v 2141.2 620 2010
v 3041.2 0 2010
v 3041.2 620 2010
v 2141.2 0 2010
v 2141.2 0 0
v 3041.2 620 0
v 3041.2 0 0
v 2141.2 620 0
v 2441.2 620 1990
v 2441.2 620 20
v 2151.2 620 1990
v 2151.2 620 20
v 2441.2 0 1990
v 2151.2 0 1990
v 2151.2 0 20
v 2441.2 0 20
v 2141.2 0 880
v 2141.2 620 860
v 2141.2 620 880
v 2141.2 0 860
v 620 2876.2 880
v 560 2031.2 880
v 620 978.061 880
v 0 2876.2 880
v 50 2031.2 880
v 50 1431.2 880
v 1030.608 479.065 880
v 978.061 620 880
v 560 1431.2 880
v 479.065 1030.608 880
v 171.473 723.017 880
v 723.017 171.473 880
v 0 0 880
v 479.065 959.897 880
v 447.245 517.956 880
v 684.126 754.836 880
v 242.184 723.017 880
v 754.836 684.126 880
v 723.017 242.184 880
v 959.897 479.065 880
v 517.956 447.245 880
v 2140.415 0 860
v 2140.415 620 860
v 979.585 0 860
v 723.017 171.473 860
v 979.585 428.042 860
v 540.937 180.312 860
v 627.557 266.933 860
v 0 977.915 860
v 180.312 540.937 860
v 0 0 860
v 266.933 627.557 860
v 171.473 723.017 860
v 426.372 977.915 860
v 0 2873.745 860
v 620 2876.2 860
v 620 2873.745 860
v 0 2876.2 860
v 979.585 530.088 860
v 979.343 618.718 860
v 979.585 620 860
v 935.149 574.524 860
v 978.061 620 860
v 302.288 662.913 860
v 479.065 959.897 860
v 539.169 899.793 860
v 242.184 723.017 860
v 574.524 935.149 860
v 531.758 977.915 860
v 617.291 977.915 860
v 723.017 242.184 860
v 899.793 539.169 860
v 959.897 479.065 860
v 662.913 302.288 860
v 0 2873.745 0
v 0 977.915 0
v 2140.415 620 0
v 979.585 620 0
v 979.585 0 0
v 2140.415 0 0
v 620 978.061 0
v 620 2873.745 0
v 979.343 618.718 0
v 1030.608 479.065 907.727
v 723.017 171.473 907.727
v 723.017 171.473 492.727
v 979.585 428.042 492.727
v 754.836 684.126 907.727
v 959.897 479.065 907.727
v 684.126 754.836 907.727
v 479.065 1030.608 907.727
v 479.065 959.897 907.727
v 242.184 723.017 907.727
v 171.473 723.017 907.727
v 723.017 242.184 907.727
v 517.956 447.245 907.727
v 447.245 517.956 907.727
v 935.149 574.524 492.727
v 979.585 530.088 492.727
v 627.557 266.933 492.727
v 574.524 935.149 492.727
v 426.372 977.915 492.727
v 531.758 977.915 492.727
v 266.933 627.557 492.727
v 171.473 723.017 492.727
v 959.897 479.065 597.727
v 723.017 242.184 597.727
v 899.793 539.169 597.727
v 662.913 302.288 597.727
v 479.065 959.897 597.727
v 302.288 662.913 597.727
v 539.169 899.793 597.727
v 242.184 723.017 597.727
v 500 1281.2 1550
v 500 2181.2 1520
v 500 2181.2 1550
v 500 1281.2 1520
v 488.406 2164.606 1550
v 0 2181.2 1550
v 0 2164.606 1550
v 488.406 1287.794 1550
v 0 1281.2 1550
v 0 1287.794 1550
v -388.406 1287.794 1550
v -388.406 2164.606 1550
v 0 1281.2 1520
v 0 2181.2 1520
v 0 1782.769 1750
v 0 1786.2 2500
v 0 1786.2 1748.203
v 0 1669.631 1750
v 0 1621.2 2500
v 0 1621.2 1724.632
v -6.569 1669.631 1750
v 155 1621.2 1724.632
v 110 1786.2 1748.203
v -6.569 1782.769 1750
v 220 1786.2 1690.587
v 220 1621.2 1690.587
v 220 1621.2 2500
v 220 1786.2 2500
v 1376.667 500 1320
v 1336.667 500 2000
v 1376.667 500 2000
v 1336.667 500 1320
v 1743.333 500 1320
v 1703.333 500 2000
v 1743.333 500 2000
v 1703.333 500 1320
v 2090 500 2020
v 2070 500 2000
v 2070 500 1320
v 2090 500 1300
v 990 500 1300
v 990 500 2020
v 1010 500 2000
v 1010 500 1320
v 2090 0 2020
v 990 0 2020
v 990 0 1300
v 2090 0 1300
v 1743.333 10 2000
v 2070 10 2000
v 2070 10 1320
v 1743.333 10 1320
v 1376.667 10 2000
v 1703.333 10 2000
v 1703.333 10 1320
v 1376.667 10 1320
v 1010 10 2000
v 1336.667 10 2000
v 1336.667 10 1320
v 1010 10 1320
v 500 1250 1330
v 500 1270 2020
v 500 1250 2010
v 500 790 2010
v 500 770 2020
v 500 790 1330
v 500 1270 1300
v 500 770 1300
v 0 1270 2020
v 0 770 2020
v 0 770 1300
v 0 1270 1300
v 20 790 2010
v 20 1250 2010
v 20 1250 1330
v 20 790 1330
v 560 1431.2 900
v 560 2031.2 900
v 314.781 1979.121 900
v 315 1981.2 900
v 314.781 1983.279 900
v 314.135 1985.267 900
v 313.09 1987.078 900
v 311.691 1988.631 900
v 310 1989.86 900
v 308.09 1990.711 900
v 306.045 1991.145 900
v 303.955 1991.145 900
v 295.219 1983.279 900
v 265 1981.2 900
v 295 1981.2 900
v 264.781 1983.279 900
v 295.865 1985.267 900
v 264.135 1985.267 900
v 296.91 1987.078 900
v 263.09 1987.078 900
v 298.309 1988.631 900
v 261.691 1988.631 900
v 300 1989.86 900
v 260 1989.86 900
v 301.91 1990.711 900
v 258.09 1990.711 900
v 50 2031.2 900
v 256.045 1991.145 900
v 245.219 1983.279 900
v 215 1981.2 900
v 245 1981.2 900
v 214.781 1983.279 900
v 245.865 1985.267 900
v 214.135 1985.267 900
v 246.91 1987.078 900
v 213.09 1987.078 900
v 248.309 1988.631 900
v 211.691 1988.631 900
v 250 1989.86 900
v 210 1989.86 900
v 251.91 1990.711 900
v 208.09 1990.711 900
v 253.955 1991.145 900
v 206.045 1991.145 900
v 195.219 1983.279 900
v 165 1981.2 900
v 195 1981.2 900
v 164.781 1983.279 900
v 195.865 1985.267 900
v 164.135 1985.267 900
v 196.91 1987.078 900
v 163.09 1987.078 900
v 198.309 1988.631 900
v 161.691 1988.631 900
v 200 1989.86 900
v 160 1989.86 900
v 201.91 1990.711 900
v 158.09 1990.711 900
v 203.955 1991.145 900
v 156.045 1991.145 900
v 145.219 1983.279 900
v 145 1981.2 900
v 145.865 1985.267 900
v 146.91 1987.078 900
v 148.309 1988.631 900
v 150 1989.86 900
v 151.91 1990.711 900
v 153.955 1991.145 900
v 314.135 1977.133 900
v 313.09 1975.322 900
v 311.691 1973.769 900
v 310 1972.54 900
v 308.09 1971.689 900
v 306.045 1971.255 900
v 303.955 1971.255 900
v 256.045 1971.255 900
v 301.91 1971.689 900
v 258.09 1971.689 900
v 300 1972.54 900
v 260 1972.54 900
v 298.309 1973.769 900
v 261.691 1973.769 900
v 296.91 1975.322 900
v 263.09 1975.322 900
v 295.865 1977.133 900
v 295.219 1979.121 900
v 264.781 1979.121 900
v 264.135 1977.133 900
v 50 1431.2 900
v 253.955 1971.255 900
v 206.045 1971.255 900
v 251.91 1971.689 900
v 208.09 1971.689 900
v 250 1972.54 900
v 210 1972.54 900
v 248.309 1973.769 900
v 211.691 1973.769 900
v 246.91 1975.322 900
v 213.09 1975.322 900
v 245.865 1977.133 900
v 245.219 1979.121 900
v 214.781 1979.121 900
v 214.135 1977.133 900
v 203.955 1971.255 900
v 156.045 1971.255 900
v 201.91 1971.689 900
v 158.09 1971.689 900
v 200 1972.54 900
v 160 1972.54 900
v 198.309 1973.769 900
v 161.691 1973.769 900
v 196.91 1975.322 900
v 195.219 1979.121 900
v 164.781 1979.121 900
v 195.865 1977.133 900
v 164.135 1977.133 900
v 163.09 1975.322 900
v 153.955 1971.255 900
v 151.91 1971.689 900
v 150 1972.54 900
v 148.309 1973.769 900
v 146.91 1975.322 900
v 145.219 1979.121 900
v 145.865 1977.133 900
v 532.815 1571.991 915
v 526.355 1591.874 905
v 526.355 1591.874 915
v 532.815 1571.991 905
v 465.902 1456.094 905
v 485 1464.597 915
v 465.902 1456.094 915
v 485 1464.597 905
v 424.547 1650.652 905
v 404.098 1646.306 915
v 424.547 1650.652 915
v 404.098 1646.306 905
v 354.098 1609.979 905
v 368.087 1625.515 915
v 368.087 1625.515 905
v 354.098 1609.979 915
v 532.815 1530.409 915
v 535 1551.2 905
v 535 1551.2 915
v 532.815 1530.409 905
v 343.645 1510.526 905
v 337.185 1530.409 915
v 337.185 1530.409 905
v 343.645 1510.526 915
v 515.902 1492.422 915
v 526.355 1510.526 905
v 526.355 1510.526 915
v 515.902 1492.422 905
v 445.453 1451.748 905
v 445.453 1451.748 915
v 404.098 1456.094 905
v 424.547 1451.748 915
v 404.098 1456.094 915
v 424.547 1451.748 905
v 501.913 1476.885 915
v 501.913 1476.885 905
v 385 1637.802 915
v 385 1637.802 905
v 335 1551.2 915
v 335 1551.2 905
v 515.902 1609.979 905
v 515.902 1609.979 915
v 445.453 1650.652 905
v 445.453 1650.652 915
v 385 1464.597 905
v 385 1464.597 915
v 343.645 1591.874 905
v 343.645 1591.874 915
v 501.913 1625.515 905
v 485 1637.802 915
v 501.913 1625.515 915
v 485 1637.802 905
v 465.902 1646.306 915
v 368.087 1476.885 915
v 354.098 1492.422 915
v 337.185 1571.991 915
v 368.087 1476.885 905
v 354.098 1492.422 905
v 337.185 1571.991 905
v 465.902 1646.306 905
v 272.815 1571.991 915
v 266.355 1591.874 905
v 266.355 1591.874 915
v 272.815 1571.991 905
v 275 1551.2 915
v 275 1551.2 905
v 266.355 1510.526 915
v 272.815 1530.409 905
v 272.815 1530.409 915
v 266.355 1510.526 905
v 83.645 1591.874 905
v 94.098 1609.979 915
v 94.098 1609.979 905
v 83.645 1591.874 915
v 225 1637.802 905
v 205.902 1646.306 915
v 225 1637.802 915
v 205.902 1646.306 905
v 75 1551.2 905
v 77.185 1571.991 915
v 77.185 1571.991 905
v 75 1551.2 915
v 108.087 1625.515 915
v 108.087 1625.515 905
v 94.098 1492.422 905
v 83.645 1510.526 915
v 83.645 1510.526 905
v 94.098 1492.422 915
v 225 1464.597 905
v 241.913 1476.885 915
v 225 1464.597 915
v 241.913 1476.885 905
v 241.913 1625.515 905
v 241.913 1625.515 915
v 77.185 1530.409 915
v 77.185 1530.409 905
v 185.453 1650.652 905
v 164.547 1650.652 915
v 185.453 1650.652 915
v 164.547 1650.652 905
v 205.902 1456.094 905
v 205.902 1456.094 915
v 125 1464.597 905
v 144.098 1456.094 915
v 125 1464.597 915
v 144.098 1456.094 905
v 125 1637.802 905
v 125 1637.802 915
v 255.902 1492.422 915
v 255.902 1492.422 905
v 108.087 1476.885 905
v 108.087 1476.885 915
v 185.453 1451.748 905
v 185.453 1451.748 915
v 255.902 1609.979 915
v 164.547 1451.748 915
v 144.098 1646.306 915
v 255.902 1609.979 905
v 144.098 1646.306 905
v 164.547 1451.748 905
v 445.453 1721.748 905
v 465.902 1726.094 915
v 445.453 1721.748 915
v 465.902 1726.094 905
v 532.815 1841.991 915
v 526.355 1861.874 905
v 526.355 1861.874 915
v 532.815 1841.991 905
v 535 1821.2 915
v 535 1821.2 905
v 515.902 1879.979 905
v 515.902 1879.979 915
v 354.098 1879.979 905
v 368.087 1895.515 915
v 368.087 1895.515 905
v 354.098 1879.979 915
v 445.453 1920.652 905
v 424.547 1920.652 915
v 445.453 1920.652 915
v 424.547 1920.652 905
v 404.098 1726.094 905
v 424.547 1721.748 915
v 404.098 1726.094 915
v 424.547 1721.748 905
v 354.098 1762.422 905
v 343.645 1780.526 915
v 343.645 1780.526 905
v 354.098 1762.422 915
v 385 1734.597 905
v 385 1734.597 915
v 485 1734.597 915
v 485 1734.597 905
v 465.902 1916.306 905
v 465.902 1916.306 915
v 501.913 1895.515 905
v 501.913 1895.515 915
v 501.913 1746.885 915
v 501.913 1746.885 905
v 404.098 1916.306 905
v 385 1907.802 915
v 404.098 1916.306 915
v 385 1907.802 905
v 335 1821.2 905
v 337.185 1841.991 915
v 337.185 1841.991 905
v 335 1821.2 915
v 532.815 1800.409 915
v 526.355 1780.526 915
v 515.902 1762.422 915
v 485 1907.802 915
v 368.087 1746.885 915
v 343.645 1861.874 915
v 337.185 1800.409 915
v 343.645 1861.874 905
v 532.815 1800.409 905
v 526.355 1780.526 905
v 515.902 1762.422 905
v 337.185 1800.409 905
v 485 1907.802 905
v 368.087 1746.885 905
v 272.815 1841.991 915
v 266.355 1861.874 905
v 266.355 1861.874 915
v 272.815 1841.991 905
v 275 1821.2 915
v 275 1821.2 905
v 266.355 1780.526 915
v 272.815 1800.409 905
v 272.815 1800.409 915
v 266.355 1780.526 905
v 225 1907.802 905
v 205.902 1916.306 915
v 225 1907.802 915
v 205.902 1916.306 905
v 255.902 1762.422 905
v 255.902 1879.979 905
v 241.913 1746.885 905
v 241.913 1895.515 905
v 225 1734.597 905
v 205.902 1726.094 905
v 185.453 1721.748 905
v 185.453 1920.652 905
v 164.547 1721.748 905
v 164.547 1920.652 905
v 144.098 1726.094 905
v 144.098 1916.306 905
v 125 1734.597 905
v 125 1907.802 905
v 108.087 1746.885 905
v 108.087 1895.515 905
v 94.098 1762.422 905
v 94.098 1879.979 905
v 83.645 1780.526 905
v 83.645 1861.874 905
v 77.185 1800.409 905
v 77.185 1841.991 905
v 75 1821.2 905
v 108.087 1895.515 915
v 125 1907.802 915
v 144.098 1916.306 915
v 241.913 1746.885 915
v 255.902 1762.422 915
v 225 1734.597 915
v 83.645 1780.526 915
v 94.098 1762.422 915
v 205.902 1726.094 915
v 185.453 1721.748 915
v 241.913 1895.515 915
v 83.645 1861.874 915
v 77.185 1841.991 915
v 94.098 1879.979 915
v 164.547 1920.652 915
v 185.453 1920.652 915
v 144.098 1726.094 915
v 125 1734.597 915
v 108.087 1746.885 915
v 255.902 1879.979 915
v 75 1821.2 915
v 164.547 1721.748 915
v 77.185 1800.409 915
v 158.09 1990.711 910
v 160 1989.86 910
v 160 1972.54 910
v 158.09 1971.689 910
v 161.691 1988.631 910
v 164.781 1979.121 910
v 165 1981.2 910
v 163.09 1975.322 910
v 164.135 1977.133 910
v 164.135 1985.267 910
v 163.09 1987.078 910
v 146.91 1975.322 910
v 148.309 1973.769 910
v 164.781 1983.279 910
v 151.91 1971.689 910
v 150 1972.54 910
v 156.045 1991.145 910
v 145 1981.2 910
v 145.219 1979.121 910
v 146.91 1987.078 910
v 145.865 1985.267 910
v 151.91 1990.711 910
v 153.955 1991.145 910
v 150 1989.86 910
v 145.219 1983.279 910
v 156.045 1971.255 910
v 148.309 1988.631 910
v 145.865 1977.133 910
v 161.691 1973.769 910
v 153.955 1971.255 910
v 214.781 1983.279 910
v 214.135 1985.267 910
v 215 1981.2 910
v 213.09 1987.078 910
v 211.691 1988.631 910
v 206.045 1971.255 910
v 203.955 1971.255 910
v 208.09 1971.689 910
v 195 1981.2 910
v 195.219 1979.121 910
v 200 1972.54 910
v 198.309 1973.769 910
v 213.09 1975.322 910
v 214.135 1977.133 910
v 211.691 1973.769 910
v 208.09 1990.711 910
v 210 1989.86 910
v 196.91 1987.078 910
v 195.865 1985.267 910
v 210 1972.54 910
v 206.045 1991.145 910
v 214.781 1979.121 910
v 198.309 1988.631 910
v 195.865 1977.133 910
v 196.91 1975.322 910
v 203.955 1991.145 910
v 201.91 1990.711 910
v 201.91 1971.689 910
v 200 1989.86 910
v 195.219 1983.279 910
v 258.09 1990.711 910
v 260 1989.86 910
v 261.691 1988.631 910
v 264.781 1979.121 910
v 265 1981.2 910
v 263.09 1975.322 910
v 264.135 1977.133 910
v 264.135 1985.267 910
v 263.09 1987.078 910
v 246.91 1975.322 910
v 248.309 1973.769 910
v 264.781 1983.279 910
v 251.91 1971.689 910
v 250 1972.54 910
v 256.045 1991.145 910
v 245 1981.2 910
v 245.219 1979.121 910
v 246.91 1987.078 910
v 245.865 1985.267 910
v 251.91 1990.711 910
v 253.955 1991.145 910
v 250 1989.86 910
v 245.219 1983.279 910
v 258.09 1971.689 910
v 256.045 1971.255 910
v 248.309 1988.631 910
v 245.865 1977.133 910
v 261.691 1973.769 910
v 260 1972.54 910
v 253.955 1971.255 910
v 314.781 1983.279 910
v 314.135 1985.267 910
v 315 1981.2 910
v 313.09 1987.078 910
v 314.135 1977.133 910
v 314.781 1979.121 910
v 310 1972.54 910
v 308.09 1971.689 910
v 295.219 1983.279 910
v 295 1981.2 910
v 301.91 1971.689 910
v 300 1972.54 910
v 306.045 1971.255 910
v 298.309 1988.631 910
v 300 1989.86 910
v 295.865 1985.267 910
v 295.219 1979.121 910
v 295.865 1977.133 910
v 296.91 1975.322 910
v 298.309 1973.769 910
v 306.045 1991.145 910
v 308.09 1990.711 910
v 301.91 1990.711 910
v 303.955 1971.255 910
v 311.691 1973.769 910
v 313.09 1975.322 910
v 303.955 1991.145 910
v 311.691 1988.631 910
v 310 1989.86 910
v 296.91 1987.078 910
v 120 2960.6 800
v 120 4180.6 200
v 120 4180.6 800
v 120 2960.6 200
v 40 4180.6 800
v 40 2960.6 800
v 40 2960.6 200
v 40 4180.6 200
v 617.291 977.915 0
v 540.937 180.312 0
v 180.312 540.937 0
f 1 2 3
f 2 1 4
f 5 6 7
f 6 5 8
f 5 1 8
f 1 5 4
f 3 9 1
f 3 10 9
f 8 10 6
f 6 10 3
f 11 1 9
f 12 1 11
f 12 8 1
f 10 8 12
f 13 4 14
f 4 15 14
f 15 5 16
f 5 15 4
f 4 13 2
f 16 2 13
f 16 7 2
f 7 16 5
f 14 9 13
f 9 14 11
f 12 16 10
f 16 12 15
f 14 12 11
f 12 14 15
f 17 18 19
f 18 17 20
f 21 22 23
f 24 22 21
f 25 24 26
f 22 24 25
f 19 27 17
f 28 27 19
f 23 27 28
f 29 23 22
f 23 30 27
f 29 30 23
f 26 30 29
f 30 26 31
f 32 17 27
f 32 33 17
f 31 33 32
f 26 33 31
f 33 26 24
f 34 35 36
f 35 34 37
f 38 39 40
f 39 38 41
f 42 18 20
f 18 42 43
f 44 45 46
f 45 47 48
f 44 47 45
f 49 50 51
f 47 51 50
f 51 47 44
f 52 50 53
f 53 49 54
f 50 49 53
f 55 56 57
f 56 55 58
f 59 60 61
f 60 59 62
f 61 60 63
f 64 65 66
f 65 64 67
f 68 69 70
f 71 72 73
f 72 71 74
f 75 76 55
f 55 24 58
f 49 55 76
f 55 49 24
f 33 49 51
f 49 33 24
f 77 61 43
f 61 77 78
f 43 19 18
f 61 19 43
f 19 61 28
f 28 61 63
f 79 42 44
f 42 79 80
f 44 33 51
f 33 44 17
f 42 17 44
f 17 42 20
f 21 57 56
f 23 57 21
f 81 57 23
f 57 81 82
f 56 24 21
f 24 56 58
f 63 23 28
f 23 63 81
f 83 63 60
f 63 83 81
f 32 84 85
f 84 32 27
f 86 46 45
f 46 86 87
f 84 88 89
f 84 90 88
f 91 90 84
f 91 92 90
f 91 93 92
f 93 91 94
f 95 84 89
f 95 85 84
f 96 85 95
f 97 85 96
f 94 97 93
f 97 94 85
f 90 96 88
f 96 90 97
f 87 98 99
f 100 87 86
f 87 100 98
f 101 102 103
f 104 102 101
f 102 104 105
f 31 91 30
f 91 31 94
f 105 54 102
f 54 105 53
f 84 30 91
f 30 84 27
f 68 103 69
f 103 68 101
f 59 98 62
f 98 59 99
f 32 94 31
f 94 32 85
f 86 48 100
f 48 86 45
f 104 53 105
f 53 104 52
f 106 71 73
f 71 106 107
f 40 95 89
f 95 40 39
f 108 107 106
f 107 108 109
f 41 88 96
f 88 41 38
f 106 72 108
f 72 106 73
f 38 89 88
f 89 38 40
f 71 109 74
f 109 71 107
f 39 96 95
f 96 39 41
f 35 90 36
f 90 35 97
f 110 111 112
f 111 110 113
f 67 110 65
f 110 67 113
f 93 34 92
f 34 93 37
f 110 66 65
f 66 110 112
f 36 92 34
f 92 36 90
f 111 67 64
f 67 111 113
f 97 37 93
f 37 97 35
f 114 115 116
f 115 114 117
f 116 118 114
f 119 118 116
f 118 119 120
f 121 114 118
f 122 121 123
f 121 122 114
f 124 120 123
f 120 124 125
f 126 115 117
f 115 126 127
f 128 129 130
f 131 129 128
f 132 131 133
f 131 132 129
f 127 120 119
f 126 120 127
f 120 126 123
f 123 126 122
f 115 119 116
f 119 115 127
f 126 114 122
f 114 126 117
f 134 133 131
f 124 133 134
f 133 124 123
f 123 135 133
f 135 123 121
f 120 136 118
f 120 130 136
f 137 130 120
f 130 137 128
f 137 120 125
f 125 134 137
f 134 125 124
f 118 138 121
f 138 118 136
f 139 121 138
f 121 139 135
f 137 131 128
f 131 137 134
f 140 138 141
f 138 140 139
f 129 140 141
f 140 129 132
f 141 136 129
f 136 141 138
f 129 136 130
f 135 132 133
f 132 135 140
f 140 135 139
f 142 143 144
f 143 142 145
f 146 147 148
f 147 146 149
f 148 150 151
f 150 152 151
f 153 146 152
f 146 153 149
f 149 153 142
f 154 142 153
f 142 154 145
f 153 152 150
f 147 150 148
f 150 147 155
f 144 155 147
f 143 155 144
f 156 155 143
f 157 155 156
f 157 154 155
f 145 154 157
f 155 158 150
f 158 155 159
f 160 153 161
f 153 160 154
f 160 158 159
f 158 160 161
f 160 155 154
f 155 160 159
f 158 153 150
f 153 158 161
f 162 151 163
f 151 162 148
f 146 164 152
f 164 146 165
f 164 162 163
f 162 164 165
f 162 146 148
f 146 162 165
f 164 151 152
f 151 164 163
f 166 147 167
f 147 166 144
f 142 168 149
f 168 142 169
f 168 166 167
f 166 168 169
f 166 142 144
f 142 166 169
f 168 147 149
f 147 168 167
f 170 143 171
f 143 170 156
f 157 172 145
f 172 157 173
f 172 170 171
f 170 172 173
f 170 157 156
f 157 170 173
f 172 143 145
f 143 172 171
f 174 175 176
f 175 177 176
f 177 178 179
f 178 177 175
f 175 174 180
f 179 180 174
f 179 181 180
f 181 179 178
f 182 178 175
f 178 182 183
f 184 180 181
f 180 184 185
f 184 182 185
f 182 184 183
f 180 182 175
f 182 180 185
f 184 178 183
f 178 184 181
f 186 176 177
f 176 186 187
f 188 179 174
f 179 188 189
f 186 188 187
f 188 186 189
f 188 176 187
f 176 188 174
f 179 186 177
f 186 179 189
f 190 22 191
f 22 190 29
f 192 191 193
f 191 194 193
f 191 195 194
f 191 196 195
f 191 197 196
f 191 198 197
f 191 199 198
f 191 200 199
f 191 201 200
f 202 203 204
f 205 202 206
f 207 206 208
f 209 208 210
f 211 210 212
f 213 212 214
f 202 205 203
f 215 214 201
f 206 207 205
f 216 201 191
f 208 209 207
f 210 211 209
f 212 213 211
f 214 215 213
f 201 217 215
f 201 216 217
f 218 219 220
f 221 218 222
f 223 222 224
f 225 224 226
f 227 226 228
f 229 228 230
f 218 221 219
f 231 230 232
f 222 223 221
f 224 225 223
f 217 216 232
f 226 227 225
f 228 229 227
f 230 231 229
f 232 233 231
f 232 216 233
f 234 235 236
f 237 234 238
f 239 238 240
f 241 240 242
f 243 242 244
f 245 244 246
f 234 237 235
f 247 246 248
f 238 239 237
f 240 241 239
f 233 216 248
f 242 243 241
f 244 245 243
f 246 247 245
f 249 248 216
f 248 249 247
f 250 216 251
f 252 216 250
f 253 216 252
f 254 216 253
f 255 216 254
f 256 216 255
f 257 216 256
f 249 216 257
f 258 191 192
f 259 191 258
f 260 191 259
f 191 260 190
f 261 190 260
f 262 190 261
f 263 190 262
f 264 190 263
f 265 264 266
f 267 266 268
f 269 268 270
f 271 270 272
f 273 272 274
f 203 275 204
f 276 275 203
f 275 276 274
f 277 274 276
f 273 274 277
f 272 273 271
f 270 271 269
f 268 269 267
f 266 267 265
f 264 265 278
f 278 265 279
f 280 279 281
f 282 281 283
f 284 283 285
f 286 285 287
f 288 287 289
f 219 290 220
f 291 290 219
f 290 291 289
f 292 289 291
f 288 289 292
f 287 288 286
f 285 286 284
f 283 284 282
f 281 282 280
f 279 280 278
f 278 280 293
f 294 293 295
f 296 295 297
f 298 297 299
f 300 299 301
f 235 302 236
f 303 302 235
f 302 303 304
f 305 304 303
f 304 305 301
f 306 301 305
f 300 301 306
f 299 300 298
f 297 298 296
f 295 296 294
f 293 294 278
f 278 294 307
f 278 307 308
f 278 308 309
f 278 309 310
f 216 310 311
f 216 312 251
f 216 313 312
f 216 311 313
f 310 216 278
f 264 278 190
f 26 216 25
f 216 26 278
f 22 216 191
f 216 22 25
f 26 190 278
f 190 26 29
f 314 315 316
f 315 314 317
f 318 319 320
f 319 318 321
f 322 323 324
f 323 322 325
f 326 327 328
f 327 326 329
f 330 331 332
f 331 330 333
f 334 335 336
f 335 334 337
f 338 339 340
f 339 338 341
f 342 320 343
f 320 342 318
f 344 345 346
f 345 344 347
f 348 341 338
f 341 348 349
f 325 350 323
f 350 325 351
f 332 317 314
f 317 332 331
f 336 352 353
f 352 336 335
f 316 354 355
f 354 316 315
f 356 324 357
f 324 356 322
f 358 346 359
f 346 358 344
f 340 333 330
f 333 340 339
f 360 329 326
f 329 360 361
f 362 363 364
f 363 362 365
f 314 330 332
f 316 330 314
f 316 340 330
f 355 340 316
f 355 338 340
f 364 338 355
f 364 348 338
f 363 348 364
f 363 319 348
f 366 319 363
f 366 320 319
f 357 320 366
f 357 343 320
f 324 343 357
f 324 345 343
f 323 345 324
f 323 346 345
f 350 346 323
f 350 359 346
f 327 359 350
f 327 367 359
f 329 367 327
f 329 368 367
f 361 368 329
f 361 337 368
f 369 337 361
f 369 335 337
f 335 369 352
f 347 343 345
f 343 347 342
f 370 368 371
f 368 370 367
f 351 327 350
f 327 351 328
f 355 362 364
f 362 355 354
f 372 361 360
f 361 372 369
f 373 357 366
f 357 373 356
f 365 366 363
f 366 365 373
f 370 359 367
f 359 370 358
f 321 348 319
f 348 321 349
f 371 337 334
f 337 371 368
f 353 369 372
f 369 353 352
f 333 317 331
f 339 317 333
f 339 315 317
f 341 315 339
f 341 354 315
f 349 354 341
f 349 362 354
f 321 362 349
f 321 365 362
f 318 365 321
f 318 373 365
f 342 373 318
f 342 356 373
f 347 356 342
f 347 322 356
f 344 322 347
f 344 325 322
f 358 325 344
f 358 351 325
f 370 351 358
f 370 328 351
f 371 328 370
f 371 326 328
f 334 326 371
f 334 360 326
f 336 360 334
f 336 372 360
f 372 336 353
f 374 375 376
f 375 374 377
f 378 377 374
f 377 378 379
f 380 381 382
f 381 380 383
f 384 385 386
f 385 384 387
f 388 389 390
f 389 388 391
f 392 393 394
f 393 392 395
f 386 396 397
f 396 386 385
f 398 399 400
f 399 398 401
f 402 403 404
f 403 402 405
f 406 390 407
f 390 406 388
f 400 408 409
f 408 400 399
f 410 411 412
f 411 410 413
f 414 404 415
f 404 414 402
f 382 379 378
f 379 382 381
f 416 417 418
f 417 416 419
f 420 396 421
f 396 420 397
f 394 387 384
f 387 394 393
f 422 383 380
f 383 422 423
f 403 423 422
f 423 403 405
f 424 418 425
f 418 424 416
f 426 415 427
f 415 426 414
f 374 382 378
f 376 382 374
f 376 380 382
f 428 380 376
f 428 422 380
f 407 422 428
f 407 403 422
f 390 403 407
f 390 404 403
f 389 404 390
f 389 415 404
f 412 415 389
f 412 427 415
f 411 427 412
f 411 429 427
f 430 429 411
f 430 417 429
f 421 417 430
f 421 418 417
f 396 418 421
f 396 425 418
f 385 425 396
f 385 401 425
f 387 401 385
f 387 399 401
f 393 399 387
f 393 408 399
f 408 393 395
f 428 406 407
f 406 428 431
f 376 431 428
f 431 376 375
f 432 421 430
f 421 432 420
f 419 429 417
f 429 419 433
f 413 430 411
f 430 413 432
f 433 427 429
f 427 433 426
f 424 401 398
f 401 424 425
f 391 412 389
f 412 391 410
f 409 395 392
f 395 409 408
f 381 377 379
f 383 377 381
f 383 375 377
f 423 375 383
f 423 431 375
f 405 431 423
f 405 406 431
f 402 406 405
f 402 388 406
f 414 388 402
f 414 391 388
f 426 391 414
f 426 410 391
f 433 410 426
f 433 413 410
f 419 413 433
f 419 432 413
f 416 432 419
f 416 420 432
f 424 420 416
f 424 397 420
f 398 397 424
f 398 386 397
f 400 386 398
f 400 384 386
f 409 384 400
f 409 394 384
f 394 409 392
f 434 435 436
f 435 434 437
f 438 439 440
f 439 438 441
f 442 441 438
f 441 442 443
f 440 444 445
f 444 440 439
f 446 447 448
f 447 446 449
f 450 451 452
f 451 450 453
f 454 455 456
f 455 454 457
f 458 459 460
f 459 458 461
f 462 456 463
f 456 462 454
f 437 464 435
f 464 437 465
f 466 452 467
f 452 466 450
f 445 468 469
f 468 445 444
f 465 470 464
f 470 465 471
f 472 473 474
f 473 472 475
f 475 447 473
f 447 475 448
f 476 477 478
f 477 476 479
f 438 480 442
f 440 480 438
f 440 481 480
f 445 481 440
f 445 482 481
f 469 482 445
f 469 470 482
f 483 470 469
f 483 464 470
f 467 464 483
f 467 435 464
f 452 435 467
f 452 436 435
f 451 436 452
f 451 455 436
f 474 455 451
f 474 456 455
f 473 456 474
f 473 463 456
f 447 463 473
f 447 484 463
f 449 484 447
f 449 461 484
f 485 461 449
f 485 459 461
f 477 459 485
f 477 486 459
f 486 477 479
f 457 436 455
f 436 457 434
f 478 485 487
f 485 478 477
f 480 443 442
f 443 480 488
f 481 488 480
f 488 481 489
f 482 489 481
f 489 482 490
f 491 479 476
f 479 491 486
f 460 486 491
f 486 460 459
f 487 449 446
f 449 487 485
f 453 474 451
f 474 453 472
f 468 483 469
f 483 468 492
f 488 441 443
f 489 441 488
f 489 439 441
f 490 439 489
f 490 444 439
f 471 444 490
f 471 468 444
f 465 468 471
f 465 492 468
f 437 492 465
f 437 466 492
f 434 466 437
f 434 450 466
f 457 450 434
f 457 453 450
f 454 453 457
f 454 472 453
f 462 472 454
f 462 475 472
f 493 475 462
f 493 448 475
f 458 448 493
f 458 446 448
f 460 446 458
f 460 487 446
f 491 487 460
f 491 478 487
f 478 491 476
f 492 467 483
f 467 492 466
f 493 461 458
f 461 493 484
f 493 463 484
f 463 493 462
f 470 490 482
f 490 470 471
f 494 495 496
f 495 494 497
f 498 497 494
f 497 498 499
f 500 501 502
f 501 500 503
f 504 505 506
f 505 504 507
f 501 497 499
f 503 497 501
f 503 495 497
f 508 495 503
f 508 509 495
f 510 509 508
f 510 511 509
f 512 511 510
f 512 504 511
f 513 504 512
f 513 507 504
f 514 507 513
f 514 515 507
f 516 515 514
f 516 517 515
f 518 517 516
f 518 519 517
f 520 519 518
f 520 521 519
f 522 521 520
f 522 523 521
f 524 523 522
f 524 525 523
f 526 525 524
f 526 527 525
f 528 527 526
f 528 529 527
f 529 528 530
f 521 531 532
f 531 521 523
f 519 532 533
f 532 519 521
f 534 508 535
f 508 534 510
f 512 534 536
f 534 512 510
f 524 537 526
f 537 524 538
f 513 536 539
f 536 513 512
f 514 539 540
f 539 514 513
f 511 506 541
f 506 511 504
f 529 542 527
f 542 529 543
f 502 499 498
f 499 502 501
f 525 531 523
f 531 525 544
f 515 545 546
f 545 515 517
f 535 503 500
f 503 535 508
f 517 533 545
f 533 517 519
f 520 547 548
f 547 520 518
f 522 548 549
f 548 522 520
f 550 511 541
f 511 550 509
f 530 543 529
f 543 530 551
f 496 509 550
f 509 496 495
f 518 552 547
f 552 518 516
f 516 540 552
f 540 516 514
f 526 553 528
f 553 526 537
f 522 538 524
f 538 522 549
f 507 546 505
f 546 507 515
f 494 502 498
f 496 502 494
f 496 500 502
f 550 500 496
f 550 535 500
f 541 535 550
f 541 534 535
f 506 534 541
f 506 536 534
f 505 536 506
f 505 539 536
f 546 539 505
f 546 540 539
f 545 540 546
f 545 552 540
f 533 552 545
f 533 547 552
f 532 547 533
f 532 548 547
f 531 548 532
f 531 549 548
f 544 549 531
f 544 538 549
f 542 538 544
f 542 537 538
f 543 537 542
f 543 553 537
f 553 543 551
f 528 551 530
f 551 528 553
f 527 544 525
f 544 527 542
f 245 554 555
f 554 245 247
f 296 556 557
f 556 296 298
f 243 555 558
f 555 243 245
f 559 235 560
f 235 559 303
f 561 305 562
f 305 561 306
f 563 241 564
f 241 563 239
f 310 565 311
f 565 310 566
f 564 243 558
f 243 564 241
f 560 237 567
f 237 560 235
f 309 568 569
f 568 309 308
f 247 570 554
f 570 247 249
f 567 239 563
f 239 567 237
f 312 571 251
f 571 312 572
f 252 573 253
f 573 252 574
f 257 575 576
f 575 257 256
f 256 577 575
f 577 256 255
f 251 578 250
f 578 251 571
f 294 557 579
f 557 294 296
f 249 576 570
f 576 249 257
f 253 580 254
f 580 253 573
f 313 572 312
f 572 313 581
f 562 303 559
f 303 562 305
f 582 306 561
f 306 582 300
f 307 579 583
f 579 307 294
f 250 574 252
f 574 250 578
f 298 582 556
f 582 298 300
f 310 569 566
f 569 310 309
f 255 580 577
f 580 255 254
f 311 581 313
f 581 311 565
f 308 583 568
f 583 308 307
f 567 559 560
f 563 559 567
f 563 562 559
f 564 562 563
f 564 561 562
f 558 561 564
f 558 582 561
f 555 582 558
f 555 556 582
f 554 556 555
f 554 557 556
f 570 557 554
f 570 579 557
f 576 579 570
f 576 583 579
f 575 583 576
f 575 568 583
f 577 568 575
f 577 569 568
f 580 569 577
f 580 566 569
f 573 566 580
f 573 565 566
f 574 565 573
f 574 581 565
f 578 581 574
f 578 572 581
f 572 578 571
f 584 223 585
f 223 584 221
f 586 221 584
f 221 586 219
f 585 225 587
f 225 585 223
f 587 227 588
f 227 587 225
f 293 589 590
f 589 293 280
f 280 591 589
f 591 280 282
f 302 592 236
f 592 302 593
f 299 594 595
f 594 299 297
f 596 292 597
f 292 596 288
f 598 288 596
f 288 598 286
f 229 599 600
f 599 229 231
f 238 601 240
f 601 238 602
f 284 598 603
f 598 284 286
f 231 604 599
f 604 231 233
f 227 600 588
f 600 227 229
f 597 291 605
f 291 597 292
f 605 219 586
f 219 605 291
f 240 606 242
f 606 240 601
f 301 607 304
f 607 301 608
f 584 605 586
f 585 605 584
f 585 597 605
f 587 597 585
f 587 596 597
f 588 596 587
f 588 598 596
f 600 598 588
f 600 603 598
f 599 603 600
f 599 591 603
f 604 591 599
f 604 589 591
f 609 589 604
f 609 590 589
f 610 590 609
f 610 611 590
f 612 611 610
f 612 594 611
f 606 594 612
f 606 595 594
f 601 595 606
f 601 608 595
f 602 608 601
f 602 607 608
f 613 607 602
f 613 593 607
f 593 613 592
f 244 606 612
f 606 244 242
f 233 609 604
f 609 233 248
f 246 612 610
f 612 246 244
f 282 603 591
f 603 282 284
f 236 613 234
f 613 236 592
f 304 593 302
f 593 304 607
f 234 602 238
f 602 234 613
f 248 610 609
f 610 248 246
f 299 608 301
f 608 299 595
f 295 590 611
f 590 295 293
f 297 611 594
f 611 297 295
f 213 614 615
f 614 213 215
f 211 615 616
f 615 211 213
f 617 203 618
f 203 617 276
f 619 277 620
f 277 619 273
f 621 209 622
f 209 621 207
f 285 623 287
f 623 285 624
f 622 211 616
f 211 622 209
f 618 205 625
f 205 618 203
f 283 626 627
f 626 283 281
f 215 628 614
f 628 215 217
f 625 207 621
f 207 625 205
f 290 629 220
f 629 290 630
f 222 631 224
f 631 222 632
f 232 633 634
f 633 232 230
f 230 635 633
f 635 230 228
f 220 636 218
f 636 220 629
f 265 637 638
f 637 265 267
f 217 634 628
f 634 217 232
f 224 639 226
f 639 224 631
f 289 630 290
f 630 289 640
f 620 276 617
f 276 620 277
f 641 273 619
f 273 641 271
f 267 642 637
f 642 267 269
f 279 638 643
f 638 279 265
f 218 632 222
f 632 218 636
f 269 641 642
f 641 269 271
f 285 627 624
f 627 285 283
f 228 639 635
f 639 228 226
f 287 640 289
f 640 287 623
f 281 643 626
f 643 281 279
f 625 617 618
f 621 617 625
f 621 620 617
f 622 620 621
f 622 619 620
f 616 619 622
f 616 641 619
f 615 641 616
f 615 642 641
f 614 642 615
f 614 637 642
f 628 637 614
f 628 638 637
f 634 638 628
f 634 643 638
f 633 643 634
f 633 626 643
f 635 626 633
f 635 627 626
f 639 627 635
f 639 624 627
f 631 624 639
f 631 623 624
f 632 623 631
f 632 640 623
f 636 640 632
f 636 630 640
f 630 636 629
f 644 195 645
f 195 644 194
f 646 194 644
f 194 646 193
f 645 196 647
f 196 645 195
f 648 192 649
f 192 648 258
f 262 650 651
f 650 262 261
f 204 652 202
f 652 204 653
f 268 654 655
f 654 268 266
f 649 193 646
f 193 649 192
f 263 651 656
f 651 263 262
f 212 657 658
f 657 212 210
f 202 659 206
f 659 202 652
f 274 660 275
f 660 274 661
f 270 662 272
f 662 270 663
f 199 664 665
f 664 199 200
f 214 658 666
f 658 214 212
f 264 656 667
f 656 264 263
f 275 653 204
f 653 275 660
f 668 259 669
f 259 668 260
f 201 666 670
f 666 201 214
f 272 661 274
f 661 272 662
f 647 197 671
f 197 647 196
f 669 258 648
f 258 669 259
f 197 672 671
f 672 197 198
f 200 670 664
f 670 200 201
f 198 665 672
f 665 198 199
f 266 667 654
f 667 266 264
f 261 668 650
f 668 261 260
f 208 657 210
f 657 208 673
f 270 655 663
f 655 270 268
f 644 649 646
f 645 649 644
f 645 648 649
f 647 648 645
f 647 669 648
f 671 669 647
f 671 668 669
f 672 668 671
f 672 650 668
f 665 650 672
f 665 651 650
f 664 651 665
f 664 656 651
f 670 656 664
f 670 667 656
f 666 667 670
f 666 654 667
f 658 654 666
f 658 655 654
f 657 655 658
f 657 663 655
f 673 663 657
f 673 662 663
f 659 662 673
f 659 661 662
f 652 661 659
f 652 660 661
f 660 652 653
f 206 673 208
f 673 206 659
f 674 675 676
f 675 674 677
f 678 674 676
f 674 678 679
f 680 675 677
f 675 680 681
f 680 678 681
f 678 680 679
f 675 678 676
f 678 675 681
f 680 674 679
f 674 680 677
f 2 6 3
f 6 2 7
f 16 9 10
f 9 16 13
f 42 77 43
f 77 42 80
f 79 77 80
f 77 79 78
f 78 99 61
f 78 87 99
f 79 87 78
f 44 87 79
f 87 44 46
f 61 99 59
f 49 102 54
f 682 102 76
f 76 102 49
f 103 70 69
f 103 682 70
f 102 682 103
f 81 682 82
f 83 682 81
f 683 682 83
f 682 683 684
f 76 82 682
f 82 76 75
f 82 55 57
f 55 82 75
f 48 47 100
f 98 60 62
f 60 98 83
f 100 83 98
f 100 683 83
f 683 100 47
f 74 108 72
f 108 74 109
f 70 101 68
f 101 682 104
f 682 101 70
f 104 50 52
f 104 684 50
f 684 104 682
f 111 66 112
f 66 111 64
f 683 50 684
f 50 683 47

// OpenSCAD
//
// Cuisine à Belz
// A test.
// Measures in mm.
//

wall_color = [1.0, 0.647, 0, 0.85]; // "yellow";
furniture_color = "cyan";
counter_top_color = "white";

sinkLength = 780; // 750;
sinkWidth = 435; // 500;
sinkDepth = 415; // 180;

module sink() {
  difference() {
    translate([0, 0, sinkDepth / 2]) {
      color("gray") {
        cube(size=[sinkLength, sinkWidth, sinkDepth], center=true);
      }
    }
    translate([(sinkLength / 4), 0, (sinkDepth / 2) + 100]) {
      color("silver") {
        cube(size=[(sinkLength / 2) - 100, sinkWidth - 100, sinkDepth - 10], center=true);
      }
    }
    translate([-(sinkLength / 4), 0, (sinkDepth / 2) + 100]) {
      color("silver") {
        cube(size=[(sinkLength / 2) - 100, sinkWidth - 100, sinkDepth - 10], center=true);
      }
    }
  }
}

// West wall
x1 = 2320 + 721.2; // 2600;
y1 = 2500;
translate([x1 / 2, 0, y1 / 2]) {
  rotate([90, 0, 0]) {
    color(wall_color) {
      square(size = [x1, y1], center = true);
    }
  }
}
// Door frame
x2 = 300;
y2 = 2500;
translate([x1, -x2 / 2, y2 / 2]) {
  rotate([90, 0, 90]) {
    color(wall_color) {
      square(size = [x2, y2], center = true);
    }
  }
}
x2_1 = 700;
y2_1 = 2500;
translate([x1 + (x2_1 / 2), -x2, y2_1 / 2]) {
  rotate([90, 0, 0]) {
    color(wall_color) {
      square(size = [x2_1, y2_1], center = true);
    }
  }
}


// North wall
x3 = 2155 + 721.2; // 2450;
y3 = 2500;

// x4 = (721.2 + 2155); // 2400;
// y4 = 2500;

translate([0, x3 / 2, y3 / 2]) {
  rotate([90, 0, 90]) {
    color(wall_color) {
      square(size = [x3, y3], center = true);
    }
  }
}
// Bevel
xb = 1020; // 850;
yb = 2500;
translate([360, 360, yb / 2]) {
  rotate([90, 0, -45]) {
    color(wall_color) {
      square(size = [xb, yb], center = true);
    }
  }
}
// North wall extension
x4 = ((0 * 721.2) + 2155); // 2400;
y4 = 2500;
wh = 900;
ww = 1210;
difference() {
  translate([0, x3 + (1 * x4 / 2), y4 / 2]) {
    rotate([90, 0, 90]) {
      color(wall_color) {
        square(size = [x4, y4], center = true);
      }
    }
  }
  // Window
  translate([0, y3 + (ww / 2), 1230 + (wh / 2)]) {
    rotate([0, 0, 0]) {
      %cube(size=[150, ww, wh], center=true);
    }
  }
}

// Heater
heaterLength = 1220;
heaterHeight = 600;
heaterThickness = 80;
translate([heaterThickness, (2600 + (721.2 / 2)) + (heaterLength / 2), (heaterHeight / 2) + 200]) {
  rotate([0, 0, 0]) {
    color("grey") {
      cube(size=[heaterThickness, heaterLength, heaterHeight], center=true);
    }
  }
}


// Floor
floorLength = x3 + x4 + x2;
floorWidth = x1 + x2_1;
translate([floorWidth / 2, (floorLength / 2) - x2, 0]) {
  rotate([0, 0, 0]) {
    color("silver") {
      square(size = [floorWidth, floorLength], center = true);
    }
  }
}

counterTopWidth = 620;

// fridge
fridgeHeight = 2010;
fridgeWidth = 600;
fridgeDepth = counterTopWidth;
translate([x1 - (fridgeWidth / 2), fridgeDepth/ 2, fridgeHeight / 2]) {
  rotate([0, 0, 0]) {
    color(furniture_color) {
      cube(size=[fridgeWidth, fridgeDepth, fridgeHeight], center=true);
    }
  }
}

// closet, right of the fridge (colonne electromenager)
fridgeRightHeight = 2010;
fridgeRightWidth = 300;
fridgeRightDepth = counterTopWidth;
translate([x1 - (fridgeWidth) - (fridgeRightWidth / 2), fridgeRightDepth/ 2, fridgeRightHeight / 2]) {
  rotate([0, 0, 0]) {
    color(furniture_color) {
      // cube(size=[fridgeRightWidth, fridgeRightDepth, fridgeRightHeight], center=true);
      
      difference() {
        cube(size=[fridgeRightWidth, fridgeRightDepth, fridgeRightHeight], center=true);
        translate([10, -(fridgeRightWidth / 1), 0]) {
           cube(size=[fridgeRightWidth, (fridgeRightWidth / 1) + 1000, fridgeRightHeight - 40], center=true);
        }
      }
    }
  }
}

// Counter top 
countertopHeight = (720 + 150);
counterTopThickness = 20;
//
//difference() {
  union() {
    // West part
    translate([(x1 - (fridgeWidth + fridgeRightWidth)) / 2 , counterTopWidth / 2, countertopHeight]) {
      rotate([0, 0, 0]) {
        color(counter_top_color) {
          cube(size=[x1 - (fridgeWidth + fridgeRightWidth), counterTopWidth, counterTopThickness], center=true);
        }
      }
    }
    // North part
    translate([counterTopWidth / 2, (x3 + 0) / 2, countertopHeight]) {
      rotate([0, 0, 90]) {
        color(counter_top_color) {
          cube(size=[x3, counterTopWidth, counterTopThickness], center=true);
        }
      }
    }
    // Bevel part
    rotate([0, 0, -45]) {
      translate([0, (xb + counterTopWidth)/ 2, countertopHeight]) {
        color(counter_top_color) {
          cube(size=[xb, counterTopWidth, counterTopThickness], center=true);
        }
      }
    }
  }
  // sink
  rotate([0, 0, -45]) {

    translate([0, 850, countertopHeight - (sinkDepth / 1.1)]) {
      color("silver") {
        sink();
      }
    }
  }

//} // End difference
// End counter top

// Under the counter top
// West
deltaLength = 620 * 0.707 / 2;  
blockLength = x1 - 721.2 - (fridgeWidth + fridgeRightWidth) - deltaLength - 40;
echo(str(">> BlockLength West:", str(blockLength), " mm"));
translate([((blockLength + (1 * deltaLength)) / 1) + 180, 
           (counterTopWidth / 2) + 0, 
           (countertopHeight / 2) + 0]) {
  rotate([0, 0, 0]) {
    color(furniture_color) {
      cube(size=[blockLength, counterTopWidth, countertopHeight], center=true);
    }
  }
}
// North
theFullNorth = false;
if (theFullNorth) {
  translate([counterTopWidth / 2, 
             (x3/* ? */) / 2, 
             (countertopHeight / 2) + 0]) {
    rotate([0, 0, 90]) {
      color(furniture_color) {
        cube(size=[(x3), counterTopWidth, countertopHeight], center=true);
      }
    }
  }
}
// Just the necessary block
blockLength_2 = x3 - 721.2 - deltaLength - 40;
echo(str(">> BlockLength North:", str(blockLength_2), " mm"));
translate([counterTopWidth / 2, 
           (blockLength_2 + 30) / 1, 
           (countertopHeight / 2) + 0]) {
  rotate([0, 0, 90]) {
    color(furniture_color) {
      cube(size=[(blockLength_2), counterTopWidth, countertopHeight], center=true);
    }
  }
}

// Bevel 
theFullBevelThing = false;
if (theFullBevelThing) {
  rotate([0, 0, -45]) {
    translate([0, (xb + counterTopWidth)/ 2, (countertopHeight / 2) + 0]) {
      color(furniture_color) {
        cube(size=[xb, counterTopWidth, countertopHeight], center=true);
      }
    }
  }
}

// Width of the bevel block
blockLength_3 = xb/ 2;
echo(str(">> BlockLength Bevel:", str(blockLength_3), " mm"));
rotate([0, 0, -45]) {
  translate([0, (xb + counterTopWidth)/ 2, (countertopHeight / 2) + 0]) {
    color(furniture_color) {
      cube(size=[blockLength_3, counterTopWidth, countertopHeight], center=true);
    }
  }
}


// Right side (oven, micro-wave)
/*
rightStuffHeight = 1510;
rightStuffWidth = 600;
rightStuffDepth = counterTopWidth;
translate([(2 + rightStuffDepth) / 2, x3 - (rightStuffWidth / 2), rightStuffHeight / 2]) {
  rotate([0, 0, 0]) {
    color(furniture_color) {
      cube(size=[rightStuffWidth, rightStuffDepth, rightStuffHeight], center=true);
    }
  }
}
*/

stoveWidth = 600;
stoveDepth = 510;
stoveThickness = 20;

// La hotte
union() {
  hDepth = 500;
  hWidth = 900;
  hHeight = 30;
  // Bottom
  translate([hDepth / 2, 
            (721.2 + 1010) - (0 * hWidth / 2), 
            (650 + 870) + (hHeight / 2)]) {
    rotate([0, 0, 0]) {
      color("gray") {
        cube(size=[hDepth, hWidth, hHeight], center=true);
      }
    }
  }
  // Pyramid
  translate([(50), 
             (721.2 + 1010) - 5, 
             650 + 870 + hHeight + (200/2)]) {
    rotate([0, 0, 45]) {
      color("gray") {
        // Pyramid ? That one is not right.
          cylinder(h=200, r1=620, r2=80, $fn=4, center=true);
      }
    }
  }
  // Chimney
  translate([0, (721.2 + 1010 - 110), 650 + 870]) {
    rotate([0, 0, 0]) {
      color("gray") {
        cube([220, 165, 980]);
      }
    }
  }
}

// Closet, west wall
closetWidth = 1100; 
closetDepth = 500;
closetHeight = 720;
closetBottomHeight = 1300;
translate([(1900) - (closetHeight / 2), closetDepth / 2, closetBottomHeight + (closetHeight / 2)]) {
  rotate([0, 0, 90]) {
    color(furniture_color) {
      difference() {
        cube(size=[closetDepth, closetWidth, closetHeight], center=true);
        translate([10, -(closetWidth / 3), 0]) {
           cube(size=[closetDepth, (closetWidth / 3) - 40, closetHeight - 40], center=true);
        }
        translate([10, (0 * closetWidth / 3), 0]) {
           cube(size=[closetDepth, (closetWidth / 3) - 40, closetHeight - 40], center=true);
        }
        translate([10, (closetWidth / 3), 0]) {
           cube(size=[closetDepth, (closetWidth / 3) - 40, closetHeight - 40], center=true);
        }
      }
    }
  }
}

// Closets, north wall
// Right
closetWidth_2 = 300;
closetDepth_2 = 500;
closetHeight_2 = 500;
closetBottomHeight_2 = 1300;

withRight = false; // Impact below

if (withRight) {
  translate([(closetDepth_2 /2), 2340, closetBottomHeight_2 + (closetHeight_2 / 2)]) {
    rotate([0, 0, 0]) {
      color(furniture_color) {
        difference() {
          cube(size=[closetDepth_2, closetWidth_2, closetHeight_2], center=true);
          translate([20, 0, 10]) {
            cube(size=[closetDepth_2 - 0, closetWidth_2 - 40, closetHeight_2 - 40], center=true);
          }
        }
      }
    }
  }
}

// Left
closetWidth_3 = 500;
closetDepth_3 = 500;
closetHeight_3 = 720;
translate([(closetDepth_3 /2), 1020, closetBottomHeight_2 + (closetHeight_3 / 2)]) {
  rotate([0, 0, 0]) {
    color(furniture_color) {
      difference() {
        cube(size=[closetDepth_3, closetWidth_3, closetHeight_3], center=true);
        translate([20, 0, 10]) {
          cube(size=[closetDepth_3 - 0, closetWidth_3 - 40, closetHeight_3 - 40], center=true);
        }
      }
    }
  }
}


// Stove, 51 x 60
translate([(stoveDepth / 2) + 50, 
           721.2 + 1010 + (0 * stoveWidth / 2), 
           countertopHeight + stoveThickness]) {
  rotate([0, 0, 0]) {
    // The whole thing
    union() {
      color("gray") {
        cube(size=[stoveDepth, stoveWidth, stoveThickness], center = true);
      }
    }
    // Burners
    translate([130, -180, 20]) {
      color("black") {
        cylinder(h=10, r=100, center=true);
      }
    }
    translate([-130, -180, 20]) {
      color("black") {
        cylinder(h=10, r=100, center=true);
      }
    }
    translate([130, 90, 20]) {
      color("black") {
        cylinder(h=10, r=100, center=true);
      }
    }
    translate([-130, 90, 20]) {
      color("black") {
        cylinder(h=10, r=100, center=true);
      }
    }
    // Knobs
    translate([-150, 250, 10]) {
      color("white") {
        cylinder(h=20, r=10, center=true);
      }
    }
    translate([-100, 250, 10]) {
      color("white") {
        cylinder(h=20, r=10, center=true);
      }
    }
    translate([-50, 250, 10]) {
      color("white") {
        cylinder(h=20, r=10, center=true);
      }
    }
    translate([0, 250, 10]) {
      color("white") {
        cylinder(h=20, r=10, center=true);
      }
    }
    // Done
  }
}

// The guy, standing in the kitchen...
showTheGuy = false;
if (showTheGuy) {
  translate([1200, 1500, 0]) {
    rotate([90, 0, -40]) {
      color("orange") {
        scale([1.25, 1.25, 1.25]) {
          #import("/Users/olivierlediouris/3DPrinting/walid90/3d-human-model/3DHumanModel.STL");
          // import("../../Raspberry_Pi_A+_board/A+_Board.stl");
        }
      }
    }
  }
}
